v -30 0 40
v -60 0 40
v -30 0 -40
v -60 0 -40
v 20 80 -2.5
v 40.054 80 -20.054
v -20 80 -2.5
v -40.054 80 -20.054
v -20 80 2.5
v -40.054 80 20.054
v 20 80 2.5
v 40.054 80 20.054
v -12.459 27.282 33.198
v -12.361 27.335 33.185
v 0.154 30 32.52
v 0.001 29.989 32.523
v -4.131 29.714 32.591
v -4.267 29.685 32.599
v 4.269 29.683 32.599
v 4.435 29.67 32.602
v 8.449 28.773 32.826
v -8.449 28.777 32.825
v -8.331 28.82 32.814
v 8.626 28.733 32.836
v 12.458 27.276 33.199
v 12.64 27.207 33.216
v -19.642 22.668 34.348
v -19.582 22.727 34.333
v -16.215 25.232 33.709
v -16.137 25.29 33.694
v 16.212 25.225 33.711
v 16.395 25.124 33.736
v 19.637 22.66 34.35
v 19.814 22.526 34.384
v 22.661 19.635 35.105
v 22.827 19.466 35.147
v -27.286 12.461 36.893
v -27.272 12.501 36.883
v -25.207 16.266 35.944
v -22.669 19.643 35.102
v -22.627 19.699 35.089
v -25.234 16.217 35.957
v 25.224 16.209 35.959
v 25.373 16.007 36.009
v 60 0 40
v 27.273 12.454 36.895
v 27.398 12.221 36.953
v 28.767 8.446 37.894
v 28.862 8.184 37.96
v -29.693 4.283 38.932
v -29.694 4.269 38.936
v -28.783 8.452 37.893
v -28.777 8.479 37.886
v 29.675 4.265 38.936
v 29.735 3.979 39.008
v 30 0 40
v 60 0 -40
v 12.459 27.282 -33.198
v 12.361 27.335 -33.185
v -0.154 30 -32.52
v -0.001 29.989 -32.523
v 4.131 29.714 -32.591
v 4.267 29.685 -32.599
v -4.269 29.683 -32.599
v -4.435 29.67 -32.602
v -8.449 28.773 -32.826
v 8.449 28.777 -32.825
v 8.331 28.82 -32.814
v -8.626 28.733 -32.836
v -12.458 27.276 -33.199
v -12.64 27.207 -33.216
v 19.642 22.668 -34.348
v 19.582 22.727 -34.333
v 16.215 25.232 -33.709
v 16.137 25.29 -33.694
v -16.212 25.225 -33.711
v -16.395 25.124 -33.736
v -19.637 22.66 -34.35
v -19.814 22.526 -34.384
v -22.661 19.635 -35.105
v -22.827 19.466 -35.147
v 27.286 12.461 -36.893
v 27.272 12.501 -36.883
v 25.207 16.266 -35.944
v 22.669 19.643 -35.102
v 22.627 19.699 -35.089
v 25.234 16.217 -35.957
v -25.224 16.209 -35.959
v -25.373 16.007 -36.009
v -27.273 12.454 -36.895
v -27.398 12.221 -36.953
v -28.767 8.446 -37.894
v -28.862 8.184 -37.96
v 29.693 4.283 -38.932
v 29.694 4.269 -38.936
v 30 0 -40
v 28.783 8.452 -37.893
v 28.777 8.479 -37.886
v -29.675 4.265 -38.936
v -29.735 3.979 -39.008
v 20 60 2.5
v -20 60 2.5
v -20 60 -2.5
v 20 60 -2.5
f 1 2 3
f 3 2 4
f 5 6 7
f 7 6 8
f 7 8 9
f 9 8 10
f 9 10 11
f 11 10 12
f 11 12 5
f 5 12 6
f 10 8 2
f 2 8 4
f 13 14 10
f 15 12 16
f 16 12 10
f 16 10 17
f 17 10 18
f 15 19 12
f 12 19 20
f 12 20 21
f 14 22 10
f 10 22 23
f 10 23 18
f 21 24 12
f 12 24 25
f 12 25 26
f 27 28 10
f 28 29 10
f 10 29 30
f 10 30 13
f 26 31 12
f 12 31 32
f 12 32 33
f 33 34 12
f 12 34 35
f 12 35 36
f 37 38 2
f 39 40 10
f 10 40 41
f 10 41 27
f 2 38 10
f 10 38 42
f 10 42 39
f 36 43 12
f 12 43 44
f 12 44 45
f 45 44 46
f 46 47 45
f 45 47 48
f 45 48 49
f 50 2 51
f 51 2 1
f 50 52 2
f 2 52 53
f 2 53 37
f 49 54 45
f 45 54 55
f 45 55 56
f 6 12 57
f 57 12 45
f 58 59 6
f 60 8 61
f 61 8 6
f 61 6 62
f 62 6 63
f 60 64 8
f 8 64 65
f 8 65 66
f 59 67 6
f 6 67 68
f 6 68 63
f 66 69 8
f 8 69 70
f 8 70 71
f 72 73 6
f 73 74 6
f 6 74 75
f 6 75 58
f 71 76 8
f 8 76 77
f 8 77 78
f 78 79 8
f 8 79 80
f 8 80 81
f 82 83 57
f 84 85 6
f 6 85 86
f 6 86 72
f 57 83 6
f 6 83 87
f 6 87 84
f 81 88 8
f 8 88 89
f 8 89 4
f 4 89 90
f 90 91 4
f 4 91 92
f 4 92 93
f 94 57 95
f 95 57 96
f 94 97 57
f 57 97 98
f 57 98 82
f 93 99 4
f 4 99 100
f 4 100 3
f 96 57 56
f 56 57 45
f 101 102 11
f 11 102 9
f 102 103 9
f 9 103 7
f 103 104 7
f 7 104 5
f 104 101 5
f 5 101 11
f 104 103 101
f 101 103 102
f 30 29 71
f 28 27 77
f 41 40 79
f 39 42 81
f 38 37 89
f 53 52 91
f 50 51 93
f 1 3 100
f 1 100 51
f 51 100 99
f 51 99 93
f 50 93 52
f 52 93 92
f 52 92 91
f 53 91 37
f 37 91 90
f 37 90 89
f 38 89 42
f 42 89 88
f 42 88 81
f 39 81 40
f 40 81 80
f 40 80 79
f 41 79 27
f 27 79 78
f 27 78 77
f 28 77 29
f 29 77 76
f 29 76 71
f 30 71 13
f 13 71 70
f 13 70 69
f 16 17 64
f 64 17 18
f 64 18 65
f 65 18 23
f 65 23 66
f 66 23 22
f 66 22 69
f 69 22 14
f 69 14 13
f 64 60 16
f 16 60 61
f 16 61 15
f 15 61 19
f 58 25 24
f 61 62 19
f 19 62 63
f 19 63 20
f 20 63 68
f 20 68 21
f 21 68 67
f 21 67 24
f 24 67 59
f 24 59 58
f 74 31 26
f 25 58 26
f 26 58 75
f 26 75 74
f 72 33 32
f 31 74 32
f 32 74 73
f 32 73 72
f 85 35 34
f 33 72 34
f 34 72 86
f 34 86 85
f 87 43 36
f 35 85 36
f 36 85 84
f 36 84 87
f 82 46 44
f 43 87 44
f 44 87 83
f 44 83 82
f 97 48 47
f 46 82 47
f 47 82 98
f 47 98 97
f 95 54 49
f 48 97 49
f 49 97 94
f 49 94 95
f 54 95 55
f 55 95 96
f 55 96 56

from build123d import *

# Parameters (mm, degrees)
SKETCH_11_W              = 120
SKETCH_11_H              = 80
EXTRUDE_3_DEPTH          = 80
EXTRUDE_3_TAPER          = 14
CUT_EXTRUDE_START        = 80
SKETCH_12_W              = 40
SKETCH_12_H              = 5
CUT_EXTRUDE_1_DEPTH      = 20
CUT_EXTRUDE_2_DEPTH      = 108.70329631
CUT_EXTRUDE_2_DEPTH_BACK = 108.70329631
SKETCH_13_R              = 30


with BuildPart() as part:
    # 스케치11 → 보스-돌출3 (new body)
    with BuildSketch(Plane(origin=(0, 0, 0), x_dir=(1, 0, 0), z_dir=(0, 1, 0))):
        Rectangle(SKETCH_11_W, SKETCH_11_H)
    extrude(amount=EXTRUDE_3_DEPTH, taper=EXTRUDE_3_TAPER)

    # 스케치12 → 컷-돌출1 (cut)
    with BuildSketch(Plane(origin=(0, 0, 0), x_dir=(1, 0, 0), z_dir=(0, 1, 0)).offset(CUT_EXTRUDE_START)):
        Rectangle(SKETCH_12_W, SKETCH_12_H)
    extrude(amount=-CUT_EXTRUDE_1_DEPTH, mode=Mode.SUBTRACT)

    # 스케치13 → 컷-돌출2 (cut, two sides: drawn at the far end of the back side and taken through both)
    with BuildSketch(Plane.XY.offset(-CUT_EXTRUDE_2_DEPTH_BACK)):
        Circle(SKETCH_13_R)
    extrude(amount=CUT_EXTRUDE_2_DEPTH + CUT_EXTRUDE_2_DEPTH_BACK, mode=Mode.SUBTRACT)


solid = part.part
